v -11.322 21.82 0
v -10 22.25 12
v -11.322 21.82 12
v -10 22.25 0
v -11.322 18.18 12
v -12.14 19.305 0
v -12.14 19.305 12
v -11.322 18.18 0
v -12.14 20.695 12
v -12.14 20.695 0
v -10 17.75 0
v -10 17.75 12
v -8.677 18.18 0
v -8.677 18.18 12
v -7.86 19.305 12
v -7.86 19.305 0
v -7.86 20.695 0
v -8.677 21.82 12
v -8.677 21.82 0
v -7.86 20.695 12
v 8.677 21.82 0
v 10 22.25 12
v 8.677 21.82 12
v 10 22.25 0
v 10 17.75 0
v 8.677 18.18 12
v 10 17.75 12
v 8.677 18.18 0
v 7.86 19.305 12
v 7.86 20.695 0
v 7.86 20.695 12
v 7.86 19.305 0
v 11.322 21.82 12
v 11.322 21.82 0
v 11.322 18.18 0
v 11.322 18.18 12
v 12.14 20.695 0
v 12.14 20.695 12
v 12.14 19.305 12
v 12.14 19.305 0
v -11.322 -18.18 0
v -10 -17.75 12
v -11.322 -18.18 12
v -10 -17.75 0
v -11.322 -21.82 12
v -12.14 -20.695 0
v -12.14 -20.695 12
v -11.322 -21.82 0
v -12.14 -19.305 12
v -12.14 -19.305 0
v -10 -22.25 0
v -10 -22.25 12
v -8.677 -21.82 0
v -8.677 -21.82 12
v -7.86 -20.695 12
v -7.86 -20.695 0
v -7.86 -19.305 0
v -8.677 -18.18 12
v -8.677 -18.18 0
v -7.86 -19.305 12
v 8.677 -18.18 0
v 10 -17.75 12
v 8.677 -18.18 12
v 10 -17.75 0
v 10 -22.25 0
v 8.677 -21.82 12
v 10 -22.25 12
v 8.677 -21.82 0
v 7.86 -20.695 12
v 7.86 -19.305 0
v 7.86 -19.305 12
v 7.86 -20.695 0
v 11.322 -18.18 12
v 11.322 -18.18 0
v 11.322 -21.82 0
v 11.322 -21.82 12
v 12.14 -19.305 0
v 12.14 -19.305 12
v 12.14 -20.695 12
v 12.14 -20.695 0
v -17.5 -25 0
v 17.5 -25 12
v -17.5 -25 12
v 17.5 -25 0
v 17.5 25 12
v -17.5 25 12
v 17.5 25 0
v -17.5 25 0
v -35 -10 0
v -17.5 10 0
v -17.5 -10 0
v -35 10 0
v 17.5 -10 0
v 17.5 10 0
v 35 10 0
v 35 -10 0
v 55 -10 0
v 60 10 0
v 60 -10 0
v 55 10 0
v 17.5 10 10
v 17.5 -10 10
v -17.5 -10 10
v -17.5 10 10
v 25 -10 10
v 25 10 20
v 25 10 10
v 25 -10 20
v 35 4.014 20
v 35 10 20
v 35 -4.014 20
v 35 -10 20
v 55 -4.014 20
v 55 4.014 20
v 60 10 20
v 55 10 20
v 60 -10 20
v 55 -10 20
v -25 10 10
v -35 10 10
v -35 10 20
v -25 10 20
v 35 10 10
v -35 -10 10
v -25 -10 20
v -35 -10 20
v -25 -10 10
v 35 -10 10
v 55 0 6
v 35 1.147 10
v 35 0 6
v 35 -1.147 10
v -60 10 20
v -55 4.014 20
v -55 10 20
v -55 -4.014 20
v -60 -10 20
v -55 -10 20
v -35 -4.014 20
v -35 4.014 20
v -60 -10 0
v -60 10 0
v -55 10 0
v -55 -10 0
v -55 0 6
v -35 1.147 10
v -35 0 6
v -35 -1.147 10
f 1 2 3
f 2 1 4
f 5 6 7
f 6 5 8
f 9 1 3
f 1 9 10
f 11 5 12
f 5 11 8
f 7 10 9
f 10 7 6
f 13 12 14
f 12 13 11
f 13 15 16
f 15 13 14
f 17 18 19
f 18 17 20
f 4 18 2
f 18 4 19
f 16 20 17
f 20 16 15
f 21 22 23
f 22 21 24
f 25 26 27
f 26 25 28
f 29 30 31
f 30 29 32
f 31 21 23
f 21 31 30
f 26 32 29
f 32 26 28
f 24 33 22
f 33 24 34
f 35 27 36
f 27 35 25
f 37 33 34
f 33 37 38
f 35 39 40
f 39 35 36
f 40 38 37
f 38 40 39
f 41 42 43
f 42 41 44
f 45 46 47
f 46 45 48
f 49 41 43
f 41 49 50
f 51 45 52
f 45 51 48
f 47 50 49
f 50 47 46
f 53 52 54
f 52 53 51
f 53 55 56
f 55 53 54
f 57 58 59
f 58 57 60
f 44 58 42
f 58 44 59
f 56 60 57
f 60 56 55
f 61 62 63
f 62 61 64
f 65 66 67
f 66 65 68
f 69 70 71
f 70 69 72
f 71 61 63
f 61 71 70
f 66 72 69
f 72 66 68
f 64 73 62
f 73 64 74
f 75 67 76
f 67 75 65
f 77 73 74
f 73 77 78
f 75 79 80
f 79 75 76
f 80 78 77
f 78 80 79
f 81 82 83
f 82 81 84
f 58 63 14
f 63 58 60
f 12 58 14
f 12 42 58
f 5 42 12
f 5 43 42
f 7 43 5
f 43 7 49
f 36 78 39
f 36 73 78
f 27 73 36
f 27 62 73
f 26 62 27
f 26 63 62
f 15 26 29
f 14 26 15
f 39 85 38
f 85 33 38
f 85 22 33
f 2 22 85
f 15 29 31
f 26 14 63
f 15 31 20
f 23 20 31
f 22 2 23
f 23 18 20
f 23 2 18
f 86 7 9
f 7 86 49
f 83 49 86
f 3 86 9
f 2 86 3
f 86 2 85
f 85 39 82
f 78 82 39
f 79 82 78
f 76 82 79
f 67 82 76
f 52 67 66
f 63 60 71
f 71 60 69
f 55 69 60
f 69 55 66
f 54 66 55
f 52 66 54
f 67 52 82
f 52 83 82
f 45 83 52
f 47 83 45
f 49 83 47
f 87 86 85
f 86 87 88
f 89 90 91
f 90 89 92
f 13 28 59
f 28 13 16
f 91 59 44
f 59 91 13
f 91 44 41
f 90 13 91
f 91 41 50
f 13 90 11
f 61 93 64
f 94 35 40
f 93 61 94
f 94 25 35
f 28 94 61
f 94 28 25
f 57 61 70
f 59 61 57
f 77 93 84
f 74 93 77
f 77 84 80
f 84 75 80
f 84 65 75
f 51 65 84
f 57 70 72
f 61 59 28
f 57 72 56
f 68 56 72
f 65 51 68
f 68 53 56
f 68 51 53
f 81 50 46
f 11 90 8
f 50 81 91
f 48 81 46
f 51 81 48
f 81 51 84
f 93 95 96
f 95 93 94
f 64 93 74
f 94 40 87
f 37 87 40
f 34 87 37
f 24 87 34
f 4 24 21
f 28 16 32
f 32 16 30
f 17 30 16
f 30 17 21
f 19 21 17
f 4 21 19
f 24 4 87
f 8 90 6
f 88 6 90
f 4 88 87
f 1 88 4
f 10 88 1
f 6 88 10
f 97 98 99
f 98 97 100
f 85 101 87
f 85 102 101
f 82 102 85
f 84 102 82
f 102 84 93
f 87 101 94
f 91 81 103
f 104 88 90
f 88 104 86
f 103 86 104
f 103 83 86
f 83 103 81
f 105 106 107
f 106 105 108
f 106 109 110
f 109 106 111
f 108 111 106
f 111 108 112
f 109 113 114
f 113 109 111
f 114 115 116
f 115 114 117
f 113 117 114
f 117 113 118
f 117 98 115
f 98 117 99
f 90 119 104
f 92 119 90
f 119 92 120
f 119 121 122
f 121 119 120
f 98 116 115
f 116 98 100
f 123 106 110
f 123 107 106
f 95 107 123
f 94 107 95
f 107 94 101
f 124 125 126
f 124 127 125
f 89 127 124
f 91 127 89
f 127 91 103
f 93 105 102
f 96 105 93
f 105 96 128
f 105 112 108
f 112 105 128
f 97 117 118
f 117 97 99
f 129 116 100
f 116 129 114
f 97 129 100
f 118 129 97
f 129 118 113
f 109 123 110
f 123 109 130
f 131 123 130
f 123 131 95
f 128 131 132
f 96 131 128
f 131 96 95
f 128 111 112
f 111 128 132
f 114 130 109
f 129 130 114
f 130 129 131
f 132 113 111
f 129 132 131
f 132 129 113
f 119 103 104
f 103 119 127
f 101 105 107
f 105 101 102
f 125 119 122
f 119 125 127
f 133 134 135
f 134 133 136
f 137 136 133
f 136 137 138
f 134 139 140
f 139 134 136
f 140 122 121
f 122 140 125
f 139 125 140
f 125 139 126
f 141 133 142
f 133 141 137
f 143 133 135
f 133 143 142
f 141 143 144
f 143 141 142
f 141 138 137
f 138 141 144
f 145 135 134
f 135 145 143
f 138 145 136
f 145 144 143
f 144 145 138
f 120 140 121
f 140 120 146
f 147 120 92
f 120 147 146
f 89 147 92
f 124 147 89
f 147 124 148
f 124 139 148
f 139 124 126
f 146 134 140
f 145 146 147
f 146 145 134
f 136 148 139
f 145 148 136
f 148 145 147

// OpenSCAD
// file: ../Parameters.scad
//Main tube diameter [mm]
main_tube_outer_diameter = 25.3;
main_tube_inner_diameter = 22;

//Tube for undercarriage [mm]
tube_for_undercarriage_outer_diameter = 10;
tube_for_undercarriage_inner_diameter = 5;

//Screw diameter and nut for M4 [mm]
M4_screw_diameter=4.5;
Nut_height_M4 = 3.2;
Nut_diameter_M4 = 7.66;


//Screw diameter and nut for M3 [mm]
M3_screw_diameter = 3.2;
Nut_height_M3 = 1.7;
Nut_diameter_M3 = 6.05;
// main file
wall_thickness=10; 

module 888_1009_cradle_half(x_size = 100, y_size = 20, z_size = 20, thickness = 10){        //kolébka
    //základní deska
    translate([0,-y_size/2,0])
        cube([x_size/2 - wall_thickness*1.5,y_size,thickness]);


    difference(){
        translate([x_size/2 - wall_thickness*2.5, -y_size/2, 0])
            cube([wall_thickness*3.5,y_size,wall_thickness*2]);
        

        translate([x_size/2 - thickness*1.5 , 0, 6])
            rotate([-16,0,0])
                translate([0, 0, -6])
                    cube([thickness*2, y_size,70]);

        mirror([0,1,0])
        translate([x_size/2 - thickness*1.5 , 0,6])
            rotate([-16,0,0])
                translate([0, 0, -6])
                    cube([thickness*2, y_size,70]);


        // zůžení přesahující kostky
        translate([x_size/2,-25,25/2])
            cube([wall_thickness*2,30,50],center = true);

        translate([x_size/2,25,25/2])
            cube([wall_thickness*2,30,50],center = true);

    }
}


module 888_1009_cradle(x_size = 180, y_size = 80, z_size = 20, thickness = 10){     //kolébka

    888_1009_cradle_half();
    mirror([1,0,0])
        888_1009_cradle_half();

    thickness = 12; 
    translate([0,0,thickness/2])
        rotate([0,0,90])
            difference(){
                cube([50,35,thickness], center = true);


                //díry pro přišroubování závěsu rotorového listu. 
                translate([20,0,0])
                    union(){
                        translate([0,10, 0]) 
                            cylinder (h = 2*thickness, r = M4_screw_diameter/2, $fn = 10, center = true);

                        translate([0, -10, 0]) 
                            cylinder (h = 2*thickness, r = M4_screw_diameter/2, $fn = 10, center = true);
                    }

                translate([-20,0,0])
                    union(){
                        translate([0,10, 0]) 
                            cylinder (h = 2*thickness, r = M4_screw_diameter/2, $fn = 10, center = true);

                        translate([0, -10, 0]) 
                            cylinder (h = 2*thickness, r = M4_screw_diameter/2, $fn = 10, center = true);
                    }



            }
}

        888_1009_cradle();
/*
translate([10,45,100])
        888_1009_shape();
*/




module crandle(){

thickness = 12; 
	difference(){
        cube([50,35,thickness], center = true);


        //díry pro přišroubování závěsu rotorového listu. 
        translate([20,0,0])
            union(){
                translate([0,10, 0]) 
                    cylinder (h = 2*thickness, r = M4_screw_diameter/2, $fn = 10, center = true);

                translate([0, -10, 0]) 
                    cylinder (h = 2*thickness, r = M4_screw_diameter/2, $fn = 10, center = true);
            }

        translate([-20,0,0])
            union(){
                translate([0,10, 0]) 
                    cylinder (h = 2*thickness, r = M4_screw_diameter/2, $fn = 10, center = true);

                translate([0, -10, 0]) 
                    cylinder (h = 2*thickness, r = M4_screw_diameter/2, $fn = 10, center = true);
            }



	}
}
//crandle();

include <../Parameters.scad>
